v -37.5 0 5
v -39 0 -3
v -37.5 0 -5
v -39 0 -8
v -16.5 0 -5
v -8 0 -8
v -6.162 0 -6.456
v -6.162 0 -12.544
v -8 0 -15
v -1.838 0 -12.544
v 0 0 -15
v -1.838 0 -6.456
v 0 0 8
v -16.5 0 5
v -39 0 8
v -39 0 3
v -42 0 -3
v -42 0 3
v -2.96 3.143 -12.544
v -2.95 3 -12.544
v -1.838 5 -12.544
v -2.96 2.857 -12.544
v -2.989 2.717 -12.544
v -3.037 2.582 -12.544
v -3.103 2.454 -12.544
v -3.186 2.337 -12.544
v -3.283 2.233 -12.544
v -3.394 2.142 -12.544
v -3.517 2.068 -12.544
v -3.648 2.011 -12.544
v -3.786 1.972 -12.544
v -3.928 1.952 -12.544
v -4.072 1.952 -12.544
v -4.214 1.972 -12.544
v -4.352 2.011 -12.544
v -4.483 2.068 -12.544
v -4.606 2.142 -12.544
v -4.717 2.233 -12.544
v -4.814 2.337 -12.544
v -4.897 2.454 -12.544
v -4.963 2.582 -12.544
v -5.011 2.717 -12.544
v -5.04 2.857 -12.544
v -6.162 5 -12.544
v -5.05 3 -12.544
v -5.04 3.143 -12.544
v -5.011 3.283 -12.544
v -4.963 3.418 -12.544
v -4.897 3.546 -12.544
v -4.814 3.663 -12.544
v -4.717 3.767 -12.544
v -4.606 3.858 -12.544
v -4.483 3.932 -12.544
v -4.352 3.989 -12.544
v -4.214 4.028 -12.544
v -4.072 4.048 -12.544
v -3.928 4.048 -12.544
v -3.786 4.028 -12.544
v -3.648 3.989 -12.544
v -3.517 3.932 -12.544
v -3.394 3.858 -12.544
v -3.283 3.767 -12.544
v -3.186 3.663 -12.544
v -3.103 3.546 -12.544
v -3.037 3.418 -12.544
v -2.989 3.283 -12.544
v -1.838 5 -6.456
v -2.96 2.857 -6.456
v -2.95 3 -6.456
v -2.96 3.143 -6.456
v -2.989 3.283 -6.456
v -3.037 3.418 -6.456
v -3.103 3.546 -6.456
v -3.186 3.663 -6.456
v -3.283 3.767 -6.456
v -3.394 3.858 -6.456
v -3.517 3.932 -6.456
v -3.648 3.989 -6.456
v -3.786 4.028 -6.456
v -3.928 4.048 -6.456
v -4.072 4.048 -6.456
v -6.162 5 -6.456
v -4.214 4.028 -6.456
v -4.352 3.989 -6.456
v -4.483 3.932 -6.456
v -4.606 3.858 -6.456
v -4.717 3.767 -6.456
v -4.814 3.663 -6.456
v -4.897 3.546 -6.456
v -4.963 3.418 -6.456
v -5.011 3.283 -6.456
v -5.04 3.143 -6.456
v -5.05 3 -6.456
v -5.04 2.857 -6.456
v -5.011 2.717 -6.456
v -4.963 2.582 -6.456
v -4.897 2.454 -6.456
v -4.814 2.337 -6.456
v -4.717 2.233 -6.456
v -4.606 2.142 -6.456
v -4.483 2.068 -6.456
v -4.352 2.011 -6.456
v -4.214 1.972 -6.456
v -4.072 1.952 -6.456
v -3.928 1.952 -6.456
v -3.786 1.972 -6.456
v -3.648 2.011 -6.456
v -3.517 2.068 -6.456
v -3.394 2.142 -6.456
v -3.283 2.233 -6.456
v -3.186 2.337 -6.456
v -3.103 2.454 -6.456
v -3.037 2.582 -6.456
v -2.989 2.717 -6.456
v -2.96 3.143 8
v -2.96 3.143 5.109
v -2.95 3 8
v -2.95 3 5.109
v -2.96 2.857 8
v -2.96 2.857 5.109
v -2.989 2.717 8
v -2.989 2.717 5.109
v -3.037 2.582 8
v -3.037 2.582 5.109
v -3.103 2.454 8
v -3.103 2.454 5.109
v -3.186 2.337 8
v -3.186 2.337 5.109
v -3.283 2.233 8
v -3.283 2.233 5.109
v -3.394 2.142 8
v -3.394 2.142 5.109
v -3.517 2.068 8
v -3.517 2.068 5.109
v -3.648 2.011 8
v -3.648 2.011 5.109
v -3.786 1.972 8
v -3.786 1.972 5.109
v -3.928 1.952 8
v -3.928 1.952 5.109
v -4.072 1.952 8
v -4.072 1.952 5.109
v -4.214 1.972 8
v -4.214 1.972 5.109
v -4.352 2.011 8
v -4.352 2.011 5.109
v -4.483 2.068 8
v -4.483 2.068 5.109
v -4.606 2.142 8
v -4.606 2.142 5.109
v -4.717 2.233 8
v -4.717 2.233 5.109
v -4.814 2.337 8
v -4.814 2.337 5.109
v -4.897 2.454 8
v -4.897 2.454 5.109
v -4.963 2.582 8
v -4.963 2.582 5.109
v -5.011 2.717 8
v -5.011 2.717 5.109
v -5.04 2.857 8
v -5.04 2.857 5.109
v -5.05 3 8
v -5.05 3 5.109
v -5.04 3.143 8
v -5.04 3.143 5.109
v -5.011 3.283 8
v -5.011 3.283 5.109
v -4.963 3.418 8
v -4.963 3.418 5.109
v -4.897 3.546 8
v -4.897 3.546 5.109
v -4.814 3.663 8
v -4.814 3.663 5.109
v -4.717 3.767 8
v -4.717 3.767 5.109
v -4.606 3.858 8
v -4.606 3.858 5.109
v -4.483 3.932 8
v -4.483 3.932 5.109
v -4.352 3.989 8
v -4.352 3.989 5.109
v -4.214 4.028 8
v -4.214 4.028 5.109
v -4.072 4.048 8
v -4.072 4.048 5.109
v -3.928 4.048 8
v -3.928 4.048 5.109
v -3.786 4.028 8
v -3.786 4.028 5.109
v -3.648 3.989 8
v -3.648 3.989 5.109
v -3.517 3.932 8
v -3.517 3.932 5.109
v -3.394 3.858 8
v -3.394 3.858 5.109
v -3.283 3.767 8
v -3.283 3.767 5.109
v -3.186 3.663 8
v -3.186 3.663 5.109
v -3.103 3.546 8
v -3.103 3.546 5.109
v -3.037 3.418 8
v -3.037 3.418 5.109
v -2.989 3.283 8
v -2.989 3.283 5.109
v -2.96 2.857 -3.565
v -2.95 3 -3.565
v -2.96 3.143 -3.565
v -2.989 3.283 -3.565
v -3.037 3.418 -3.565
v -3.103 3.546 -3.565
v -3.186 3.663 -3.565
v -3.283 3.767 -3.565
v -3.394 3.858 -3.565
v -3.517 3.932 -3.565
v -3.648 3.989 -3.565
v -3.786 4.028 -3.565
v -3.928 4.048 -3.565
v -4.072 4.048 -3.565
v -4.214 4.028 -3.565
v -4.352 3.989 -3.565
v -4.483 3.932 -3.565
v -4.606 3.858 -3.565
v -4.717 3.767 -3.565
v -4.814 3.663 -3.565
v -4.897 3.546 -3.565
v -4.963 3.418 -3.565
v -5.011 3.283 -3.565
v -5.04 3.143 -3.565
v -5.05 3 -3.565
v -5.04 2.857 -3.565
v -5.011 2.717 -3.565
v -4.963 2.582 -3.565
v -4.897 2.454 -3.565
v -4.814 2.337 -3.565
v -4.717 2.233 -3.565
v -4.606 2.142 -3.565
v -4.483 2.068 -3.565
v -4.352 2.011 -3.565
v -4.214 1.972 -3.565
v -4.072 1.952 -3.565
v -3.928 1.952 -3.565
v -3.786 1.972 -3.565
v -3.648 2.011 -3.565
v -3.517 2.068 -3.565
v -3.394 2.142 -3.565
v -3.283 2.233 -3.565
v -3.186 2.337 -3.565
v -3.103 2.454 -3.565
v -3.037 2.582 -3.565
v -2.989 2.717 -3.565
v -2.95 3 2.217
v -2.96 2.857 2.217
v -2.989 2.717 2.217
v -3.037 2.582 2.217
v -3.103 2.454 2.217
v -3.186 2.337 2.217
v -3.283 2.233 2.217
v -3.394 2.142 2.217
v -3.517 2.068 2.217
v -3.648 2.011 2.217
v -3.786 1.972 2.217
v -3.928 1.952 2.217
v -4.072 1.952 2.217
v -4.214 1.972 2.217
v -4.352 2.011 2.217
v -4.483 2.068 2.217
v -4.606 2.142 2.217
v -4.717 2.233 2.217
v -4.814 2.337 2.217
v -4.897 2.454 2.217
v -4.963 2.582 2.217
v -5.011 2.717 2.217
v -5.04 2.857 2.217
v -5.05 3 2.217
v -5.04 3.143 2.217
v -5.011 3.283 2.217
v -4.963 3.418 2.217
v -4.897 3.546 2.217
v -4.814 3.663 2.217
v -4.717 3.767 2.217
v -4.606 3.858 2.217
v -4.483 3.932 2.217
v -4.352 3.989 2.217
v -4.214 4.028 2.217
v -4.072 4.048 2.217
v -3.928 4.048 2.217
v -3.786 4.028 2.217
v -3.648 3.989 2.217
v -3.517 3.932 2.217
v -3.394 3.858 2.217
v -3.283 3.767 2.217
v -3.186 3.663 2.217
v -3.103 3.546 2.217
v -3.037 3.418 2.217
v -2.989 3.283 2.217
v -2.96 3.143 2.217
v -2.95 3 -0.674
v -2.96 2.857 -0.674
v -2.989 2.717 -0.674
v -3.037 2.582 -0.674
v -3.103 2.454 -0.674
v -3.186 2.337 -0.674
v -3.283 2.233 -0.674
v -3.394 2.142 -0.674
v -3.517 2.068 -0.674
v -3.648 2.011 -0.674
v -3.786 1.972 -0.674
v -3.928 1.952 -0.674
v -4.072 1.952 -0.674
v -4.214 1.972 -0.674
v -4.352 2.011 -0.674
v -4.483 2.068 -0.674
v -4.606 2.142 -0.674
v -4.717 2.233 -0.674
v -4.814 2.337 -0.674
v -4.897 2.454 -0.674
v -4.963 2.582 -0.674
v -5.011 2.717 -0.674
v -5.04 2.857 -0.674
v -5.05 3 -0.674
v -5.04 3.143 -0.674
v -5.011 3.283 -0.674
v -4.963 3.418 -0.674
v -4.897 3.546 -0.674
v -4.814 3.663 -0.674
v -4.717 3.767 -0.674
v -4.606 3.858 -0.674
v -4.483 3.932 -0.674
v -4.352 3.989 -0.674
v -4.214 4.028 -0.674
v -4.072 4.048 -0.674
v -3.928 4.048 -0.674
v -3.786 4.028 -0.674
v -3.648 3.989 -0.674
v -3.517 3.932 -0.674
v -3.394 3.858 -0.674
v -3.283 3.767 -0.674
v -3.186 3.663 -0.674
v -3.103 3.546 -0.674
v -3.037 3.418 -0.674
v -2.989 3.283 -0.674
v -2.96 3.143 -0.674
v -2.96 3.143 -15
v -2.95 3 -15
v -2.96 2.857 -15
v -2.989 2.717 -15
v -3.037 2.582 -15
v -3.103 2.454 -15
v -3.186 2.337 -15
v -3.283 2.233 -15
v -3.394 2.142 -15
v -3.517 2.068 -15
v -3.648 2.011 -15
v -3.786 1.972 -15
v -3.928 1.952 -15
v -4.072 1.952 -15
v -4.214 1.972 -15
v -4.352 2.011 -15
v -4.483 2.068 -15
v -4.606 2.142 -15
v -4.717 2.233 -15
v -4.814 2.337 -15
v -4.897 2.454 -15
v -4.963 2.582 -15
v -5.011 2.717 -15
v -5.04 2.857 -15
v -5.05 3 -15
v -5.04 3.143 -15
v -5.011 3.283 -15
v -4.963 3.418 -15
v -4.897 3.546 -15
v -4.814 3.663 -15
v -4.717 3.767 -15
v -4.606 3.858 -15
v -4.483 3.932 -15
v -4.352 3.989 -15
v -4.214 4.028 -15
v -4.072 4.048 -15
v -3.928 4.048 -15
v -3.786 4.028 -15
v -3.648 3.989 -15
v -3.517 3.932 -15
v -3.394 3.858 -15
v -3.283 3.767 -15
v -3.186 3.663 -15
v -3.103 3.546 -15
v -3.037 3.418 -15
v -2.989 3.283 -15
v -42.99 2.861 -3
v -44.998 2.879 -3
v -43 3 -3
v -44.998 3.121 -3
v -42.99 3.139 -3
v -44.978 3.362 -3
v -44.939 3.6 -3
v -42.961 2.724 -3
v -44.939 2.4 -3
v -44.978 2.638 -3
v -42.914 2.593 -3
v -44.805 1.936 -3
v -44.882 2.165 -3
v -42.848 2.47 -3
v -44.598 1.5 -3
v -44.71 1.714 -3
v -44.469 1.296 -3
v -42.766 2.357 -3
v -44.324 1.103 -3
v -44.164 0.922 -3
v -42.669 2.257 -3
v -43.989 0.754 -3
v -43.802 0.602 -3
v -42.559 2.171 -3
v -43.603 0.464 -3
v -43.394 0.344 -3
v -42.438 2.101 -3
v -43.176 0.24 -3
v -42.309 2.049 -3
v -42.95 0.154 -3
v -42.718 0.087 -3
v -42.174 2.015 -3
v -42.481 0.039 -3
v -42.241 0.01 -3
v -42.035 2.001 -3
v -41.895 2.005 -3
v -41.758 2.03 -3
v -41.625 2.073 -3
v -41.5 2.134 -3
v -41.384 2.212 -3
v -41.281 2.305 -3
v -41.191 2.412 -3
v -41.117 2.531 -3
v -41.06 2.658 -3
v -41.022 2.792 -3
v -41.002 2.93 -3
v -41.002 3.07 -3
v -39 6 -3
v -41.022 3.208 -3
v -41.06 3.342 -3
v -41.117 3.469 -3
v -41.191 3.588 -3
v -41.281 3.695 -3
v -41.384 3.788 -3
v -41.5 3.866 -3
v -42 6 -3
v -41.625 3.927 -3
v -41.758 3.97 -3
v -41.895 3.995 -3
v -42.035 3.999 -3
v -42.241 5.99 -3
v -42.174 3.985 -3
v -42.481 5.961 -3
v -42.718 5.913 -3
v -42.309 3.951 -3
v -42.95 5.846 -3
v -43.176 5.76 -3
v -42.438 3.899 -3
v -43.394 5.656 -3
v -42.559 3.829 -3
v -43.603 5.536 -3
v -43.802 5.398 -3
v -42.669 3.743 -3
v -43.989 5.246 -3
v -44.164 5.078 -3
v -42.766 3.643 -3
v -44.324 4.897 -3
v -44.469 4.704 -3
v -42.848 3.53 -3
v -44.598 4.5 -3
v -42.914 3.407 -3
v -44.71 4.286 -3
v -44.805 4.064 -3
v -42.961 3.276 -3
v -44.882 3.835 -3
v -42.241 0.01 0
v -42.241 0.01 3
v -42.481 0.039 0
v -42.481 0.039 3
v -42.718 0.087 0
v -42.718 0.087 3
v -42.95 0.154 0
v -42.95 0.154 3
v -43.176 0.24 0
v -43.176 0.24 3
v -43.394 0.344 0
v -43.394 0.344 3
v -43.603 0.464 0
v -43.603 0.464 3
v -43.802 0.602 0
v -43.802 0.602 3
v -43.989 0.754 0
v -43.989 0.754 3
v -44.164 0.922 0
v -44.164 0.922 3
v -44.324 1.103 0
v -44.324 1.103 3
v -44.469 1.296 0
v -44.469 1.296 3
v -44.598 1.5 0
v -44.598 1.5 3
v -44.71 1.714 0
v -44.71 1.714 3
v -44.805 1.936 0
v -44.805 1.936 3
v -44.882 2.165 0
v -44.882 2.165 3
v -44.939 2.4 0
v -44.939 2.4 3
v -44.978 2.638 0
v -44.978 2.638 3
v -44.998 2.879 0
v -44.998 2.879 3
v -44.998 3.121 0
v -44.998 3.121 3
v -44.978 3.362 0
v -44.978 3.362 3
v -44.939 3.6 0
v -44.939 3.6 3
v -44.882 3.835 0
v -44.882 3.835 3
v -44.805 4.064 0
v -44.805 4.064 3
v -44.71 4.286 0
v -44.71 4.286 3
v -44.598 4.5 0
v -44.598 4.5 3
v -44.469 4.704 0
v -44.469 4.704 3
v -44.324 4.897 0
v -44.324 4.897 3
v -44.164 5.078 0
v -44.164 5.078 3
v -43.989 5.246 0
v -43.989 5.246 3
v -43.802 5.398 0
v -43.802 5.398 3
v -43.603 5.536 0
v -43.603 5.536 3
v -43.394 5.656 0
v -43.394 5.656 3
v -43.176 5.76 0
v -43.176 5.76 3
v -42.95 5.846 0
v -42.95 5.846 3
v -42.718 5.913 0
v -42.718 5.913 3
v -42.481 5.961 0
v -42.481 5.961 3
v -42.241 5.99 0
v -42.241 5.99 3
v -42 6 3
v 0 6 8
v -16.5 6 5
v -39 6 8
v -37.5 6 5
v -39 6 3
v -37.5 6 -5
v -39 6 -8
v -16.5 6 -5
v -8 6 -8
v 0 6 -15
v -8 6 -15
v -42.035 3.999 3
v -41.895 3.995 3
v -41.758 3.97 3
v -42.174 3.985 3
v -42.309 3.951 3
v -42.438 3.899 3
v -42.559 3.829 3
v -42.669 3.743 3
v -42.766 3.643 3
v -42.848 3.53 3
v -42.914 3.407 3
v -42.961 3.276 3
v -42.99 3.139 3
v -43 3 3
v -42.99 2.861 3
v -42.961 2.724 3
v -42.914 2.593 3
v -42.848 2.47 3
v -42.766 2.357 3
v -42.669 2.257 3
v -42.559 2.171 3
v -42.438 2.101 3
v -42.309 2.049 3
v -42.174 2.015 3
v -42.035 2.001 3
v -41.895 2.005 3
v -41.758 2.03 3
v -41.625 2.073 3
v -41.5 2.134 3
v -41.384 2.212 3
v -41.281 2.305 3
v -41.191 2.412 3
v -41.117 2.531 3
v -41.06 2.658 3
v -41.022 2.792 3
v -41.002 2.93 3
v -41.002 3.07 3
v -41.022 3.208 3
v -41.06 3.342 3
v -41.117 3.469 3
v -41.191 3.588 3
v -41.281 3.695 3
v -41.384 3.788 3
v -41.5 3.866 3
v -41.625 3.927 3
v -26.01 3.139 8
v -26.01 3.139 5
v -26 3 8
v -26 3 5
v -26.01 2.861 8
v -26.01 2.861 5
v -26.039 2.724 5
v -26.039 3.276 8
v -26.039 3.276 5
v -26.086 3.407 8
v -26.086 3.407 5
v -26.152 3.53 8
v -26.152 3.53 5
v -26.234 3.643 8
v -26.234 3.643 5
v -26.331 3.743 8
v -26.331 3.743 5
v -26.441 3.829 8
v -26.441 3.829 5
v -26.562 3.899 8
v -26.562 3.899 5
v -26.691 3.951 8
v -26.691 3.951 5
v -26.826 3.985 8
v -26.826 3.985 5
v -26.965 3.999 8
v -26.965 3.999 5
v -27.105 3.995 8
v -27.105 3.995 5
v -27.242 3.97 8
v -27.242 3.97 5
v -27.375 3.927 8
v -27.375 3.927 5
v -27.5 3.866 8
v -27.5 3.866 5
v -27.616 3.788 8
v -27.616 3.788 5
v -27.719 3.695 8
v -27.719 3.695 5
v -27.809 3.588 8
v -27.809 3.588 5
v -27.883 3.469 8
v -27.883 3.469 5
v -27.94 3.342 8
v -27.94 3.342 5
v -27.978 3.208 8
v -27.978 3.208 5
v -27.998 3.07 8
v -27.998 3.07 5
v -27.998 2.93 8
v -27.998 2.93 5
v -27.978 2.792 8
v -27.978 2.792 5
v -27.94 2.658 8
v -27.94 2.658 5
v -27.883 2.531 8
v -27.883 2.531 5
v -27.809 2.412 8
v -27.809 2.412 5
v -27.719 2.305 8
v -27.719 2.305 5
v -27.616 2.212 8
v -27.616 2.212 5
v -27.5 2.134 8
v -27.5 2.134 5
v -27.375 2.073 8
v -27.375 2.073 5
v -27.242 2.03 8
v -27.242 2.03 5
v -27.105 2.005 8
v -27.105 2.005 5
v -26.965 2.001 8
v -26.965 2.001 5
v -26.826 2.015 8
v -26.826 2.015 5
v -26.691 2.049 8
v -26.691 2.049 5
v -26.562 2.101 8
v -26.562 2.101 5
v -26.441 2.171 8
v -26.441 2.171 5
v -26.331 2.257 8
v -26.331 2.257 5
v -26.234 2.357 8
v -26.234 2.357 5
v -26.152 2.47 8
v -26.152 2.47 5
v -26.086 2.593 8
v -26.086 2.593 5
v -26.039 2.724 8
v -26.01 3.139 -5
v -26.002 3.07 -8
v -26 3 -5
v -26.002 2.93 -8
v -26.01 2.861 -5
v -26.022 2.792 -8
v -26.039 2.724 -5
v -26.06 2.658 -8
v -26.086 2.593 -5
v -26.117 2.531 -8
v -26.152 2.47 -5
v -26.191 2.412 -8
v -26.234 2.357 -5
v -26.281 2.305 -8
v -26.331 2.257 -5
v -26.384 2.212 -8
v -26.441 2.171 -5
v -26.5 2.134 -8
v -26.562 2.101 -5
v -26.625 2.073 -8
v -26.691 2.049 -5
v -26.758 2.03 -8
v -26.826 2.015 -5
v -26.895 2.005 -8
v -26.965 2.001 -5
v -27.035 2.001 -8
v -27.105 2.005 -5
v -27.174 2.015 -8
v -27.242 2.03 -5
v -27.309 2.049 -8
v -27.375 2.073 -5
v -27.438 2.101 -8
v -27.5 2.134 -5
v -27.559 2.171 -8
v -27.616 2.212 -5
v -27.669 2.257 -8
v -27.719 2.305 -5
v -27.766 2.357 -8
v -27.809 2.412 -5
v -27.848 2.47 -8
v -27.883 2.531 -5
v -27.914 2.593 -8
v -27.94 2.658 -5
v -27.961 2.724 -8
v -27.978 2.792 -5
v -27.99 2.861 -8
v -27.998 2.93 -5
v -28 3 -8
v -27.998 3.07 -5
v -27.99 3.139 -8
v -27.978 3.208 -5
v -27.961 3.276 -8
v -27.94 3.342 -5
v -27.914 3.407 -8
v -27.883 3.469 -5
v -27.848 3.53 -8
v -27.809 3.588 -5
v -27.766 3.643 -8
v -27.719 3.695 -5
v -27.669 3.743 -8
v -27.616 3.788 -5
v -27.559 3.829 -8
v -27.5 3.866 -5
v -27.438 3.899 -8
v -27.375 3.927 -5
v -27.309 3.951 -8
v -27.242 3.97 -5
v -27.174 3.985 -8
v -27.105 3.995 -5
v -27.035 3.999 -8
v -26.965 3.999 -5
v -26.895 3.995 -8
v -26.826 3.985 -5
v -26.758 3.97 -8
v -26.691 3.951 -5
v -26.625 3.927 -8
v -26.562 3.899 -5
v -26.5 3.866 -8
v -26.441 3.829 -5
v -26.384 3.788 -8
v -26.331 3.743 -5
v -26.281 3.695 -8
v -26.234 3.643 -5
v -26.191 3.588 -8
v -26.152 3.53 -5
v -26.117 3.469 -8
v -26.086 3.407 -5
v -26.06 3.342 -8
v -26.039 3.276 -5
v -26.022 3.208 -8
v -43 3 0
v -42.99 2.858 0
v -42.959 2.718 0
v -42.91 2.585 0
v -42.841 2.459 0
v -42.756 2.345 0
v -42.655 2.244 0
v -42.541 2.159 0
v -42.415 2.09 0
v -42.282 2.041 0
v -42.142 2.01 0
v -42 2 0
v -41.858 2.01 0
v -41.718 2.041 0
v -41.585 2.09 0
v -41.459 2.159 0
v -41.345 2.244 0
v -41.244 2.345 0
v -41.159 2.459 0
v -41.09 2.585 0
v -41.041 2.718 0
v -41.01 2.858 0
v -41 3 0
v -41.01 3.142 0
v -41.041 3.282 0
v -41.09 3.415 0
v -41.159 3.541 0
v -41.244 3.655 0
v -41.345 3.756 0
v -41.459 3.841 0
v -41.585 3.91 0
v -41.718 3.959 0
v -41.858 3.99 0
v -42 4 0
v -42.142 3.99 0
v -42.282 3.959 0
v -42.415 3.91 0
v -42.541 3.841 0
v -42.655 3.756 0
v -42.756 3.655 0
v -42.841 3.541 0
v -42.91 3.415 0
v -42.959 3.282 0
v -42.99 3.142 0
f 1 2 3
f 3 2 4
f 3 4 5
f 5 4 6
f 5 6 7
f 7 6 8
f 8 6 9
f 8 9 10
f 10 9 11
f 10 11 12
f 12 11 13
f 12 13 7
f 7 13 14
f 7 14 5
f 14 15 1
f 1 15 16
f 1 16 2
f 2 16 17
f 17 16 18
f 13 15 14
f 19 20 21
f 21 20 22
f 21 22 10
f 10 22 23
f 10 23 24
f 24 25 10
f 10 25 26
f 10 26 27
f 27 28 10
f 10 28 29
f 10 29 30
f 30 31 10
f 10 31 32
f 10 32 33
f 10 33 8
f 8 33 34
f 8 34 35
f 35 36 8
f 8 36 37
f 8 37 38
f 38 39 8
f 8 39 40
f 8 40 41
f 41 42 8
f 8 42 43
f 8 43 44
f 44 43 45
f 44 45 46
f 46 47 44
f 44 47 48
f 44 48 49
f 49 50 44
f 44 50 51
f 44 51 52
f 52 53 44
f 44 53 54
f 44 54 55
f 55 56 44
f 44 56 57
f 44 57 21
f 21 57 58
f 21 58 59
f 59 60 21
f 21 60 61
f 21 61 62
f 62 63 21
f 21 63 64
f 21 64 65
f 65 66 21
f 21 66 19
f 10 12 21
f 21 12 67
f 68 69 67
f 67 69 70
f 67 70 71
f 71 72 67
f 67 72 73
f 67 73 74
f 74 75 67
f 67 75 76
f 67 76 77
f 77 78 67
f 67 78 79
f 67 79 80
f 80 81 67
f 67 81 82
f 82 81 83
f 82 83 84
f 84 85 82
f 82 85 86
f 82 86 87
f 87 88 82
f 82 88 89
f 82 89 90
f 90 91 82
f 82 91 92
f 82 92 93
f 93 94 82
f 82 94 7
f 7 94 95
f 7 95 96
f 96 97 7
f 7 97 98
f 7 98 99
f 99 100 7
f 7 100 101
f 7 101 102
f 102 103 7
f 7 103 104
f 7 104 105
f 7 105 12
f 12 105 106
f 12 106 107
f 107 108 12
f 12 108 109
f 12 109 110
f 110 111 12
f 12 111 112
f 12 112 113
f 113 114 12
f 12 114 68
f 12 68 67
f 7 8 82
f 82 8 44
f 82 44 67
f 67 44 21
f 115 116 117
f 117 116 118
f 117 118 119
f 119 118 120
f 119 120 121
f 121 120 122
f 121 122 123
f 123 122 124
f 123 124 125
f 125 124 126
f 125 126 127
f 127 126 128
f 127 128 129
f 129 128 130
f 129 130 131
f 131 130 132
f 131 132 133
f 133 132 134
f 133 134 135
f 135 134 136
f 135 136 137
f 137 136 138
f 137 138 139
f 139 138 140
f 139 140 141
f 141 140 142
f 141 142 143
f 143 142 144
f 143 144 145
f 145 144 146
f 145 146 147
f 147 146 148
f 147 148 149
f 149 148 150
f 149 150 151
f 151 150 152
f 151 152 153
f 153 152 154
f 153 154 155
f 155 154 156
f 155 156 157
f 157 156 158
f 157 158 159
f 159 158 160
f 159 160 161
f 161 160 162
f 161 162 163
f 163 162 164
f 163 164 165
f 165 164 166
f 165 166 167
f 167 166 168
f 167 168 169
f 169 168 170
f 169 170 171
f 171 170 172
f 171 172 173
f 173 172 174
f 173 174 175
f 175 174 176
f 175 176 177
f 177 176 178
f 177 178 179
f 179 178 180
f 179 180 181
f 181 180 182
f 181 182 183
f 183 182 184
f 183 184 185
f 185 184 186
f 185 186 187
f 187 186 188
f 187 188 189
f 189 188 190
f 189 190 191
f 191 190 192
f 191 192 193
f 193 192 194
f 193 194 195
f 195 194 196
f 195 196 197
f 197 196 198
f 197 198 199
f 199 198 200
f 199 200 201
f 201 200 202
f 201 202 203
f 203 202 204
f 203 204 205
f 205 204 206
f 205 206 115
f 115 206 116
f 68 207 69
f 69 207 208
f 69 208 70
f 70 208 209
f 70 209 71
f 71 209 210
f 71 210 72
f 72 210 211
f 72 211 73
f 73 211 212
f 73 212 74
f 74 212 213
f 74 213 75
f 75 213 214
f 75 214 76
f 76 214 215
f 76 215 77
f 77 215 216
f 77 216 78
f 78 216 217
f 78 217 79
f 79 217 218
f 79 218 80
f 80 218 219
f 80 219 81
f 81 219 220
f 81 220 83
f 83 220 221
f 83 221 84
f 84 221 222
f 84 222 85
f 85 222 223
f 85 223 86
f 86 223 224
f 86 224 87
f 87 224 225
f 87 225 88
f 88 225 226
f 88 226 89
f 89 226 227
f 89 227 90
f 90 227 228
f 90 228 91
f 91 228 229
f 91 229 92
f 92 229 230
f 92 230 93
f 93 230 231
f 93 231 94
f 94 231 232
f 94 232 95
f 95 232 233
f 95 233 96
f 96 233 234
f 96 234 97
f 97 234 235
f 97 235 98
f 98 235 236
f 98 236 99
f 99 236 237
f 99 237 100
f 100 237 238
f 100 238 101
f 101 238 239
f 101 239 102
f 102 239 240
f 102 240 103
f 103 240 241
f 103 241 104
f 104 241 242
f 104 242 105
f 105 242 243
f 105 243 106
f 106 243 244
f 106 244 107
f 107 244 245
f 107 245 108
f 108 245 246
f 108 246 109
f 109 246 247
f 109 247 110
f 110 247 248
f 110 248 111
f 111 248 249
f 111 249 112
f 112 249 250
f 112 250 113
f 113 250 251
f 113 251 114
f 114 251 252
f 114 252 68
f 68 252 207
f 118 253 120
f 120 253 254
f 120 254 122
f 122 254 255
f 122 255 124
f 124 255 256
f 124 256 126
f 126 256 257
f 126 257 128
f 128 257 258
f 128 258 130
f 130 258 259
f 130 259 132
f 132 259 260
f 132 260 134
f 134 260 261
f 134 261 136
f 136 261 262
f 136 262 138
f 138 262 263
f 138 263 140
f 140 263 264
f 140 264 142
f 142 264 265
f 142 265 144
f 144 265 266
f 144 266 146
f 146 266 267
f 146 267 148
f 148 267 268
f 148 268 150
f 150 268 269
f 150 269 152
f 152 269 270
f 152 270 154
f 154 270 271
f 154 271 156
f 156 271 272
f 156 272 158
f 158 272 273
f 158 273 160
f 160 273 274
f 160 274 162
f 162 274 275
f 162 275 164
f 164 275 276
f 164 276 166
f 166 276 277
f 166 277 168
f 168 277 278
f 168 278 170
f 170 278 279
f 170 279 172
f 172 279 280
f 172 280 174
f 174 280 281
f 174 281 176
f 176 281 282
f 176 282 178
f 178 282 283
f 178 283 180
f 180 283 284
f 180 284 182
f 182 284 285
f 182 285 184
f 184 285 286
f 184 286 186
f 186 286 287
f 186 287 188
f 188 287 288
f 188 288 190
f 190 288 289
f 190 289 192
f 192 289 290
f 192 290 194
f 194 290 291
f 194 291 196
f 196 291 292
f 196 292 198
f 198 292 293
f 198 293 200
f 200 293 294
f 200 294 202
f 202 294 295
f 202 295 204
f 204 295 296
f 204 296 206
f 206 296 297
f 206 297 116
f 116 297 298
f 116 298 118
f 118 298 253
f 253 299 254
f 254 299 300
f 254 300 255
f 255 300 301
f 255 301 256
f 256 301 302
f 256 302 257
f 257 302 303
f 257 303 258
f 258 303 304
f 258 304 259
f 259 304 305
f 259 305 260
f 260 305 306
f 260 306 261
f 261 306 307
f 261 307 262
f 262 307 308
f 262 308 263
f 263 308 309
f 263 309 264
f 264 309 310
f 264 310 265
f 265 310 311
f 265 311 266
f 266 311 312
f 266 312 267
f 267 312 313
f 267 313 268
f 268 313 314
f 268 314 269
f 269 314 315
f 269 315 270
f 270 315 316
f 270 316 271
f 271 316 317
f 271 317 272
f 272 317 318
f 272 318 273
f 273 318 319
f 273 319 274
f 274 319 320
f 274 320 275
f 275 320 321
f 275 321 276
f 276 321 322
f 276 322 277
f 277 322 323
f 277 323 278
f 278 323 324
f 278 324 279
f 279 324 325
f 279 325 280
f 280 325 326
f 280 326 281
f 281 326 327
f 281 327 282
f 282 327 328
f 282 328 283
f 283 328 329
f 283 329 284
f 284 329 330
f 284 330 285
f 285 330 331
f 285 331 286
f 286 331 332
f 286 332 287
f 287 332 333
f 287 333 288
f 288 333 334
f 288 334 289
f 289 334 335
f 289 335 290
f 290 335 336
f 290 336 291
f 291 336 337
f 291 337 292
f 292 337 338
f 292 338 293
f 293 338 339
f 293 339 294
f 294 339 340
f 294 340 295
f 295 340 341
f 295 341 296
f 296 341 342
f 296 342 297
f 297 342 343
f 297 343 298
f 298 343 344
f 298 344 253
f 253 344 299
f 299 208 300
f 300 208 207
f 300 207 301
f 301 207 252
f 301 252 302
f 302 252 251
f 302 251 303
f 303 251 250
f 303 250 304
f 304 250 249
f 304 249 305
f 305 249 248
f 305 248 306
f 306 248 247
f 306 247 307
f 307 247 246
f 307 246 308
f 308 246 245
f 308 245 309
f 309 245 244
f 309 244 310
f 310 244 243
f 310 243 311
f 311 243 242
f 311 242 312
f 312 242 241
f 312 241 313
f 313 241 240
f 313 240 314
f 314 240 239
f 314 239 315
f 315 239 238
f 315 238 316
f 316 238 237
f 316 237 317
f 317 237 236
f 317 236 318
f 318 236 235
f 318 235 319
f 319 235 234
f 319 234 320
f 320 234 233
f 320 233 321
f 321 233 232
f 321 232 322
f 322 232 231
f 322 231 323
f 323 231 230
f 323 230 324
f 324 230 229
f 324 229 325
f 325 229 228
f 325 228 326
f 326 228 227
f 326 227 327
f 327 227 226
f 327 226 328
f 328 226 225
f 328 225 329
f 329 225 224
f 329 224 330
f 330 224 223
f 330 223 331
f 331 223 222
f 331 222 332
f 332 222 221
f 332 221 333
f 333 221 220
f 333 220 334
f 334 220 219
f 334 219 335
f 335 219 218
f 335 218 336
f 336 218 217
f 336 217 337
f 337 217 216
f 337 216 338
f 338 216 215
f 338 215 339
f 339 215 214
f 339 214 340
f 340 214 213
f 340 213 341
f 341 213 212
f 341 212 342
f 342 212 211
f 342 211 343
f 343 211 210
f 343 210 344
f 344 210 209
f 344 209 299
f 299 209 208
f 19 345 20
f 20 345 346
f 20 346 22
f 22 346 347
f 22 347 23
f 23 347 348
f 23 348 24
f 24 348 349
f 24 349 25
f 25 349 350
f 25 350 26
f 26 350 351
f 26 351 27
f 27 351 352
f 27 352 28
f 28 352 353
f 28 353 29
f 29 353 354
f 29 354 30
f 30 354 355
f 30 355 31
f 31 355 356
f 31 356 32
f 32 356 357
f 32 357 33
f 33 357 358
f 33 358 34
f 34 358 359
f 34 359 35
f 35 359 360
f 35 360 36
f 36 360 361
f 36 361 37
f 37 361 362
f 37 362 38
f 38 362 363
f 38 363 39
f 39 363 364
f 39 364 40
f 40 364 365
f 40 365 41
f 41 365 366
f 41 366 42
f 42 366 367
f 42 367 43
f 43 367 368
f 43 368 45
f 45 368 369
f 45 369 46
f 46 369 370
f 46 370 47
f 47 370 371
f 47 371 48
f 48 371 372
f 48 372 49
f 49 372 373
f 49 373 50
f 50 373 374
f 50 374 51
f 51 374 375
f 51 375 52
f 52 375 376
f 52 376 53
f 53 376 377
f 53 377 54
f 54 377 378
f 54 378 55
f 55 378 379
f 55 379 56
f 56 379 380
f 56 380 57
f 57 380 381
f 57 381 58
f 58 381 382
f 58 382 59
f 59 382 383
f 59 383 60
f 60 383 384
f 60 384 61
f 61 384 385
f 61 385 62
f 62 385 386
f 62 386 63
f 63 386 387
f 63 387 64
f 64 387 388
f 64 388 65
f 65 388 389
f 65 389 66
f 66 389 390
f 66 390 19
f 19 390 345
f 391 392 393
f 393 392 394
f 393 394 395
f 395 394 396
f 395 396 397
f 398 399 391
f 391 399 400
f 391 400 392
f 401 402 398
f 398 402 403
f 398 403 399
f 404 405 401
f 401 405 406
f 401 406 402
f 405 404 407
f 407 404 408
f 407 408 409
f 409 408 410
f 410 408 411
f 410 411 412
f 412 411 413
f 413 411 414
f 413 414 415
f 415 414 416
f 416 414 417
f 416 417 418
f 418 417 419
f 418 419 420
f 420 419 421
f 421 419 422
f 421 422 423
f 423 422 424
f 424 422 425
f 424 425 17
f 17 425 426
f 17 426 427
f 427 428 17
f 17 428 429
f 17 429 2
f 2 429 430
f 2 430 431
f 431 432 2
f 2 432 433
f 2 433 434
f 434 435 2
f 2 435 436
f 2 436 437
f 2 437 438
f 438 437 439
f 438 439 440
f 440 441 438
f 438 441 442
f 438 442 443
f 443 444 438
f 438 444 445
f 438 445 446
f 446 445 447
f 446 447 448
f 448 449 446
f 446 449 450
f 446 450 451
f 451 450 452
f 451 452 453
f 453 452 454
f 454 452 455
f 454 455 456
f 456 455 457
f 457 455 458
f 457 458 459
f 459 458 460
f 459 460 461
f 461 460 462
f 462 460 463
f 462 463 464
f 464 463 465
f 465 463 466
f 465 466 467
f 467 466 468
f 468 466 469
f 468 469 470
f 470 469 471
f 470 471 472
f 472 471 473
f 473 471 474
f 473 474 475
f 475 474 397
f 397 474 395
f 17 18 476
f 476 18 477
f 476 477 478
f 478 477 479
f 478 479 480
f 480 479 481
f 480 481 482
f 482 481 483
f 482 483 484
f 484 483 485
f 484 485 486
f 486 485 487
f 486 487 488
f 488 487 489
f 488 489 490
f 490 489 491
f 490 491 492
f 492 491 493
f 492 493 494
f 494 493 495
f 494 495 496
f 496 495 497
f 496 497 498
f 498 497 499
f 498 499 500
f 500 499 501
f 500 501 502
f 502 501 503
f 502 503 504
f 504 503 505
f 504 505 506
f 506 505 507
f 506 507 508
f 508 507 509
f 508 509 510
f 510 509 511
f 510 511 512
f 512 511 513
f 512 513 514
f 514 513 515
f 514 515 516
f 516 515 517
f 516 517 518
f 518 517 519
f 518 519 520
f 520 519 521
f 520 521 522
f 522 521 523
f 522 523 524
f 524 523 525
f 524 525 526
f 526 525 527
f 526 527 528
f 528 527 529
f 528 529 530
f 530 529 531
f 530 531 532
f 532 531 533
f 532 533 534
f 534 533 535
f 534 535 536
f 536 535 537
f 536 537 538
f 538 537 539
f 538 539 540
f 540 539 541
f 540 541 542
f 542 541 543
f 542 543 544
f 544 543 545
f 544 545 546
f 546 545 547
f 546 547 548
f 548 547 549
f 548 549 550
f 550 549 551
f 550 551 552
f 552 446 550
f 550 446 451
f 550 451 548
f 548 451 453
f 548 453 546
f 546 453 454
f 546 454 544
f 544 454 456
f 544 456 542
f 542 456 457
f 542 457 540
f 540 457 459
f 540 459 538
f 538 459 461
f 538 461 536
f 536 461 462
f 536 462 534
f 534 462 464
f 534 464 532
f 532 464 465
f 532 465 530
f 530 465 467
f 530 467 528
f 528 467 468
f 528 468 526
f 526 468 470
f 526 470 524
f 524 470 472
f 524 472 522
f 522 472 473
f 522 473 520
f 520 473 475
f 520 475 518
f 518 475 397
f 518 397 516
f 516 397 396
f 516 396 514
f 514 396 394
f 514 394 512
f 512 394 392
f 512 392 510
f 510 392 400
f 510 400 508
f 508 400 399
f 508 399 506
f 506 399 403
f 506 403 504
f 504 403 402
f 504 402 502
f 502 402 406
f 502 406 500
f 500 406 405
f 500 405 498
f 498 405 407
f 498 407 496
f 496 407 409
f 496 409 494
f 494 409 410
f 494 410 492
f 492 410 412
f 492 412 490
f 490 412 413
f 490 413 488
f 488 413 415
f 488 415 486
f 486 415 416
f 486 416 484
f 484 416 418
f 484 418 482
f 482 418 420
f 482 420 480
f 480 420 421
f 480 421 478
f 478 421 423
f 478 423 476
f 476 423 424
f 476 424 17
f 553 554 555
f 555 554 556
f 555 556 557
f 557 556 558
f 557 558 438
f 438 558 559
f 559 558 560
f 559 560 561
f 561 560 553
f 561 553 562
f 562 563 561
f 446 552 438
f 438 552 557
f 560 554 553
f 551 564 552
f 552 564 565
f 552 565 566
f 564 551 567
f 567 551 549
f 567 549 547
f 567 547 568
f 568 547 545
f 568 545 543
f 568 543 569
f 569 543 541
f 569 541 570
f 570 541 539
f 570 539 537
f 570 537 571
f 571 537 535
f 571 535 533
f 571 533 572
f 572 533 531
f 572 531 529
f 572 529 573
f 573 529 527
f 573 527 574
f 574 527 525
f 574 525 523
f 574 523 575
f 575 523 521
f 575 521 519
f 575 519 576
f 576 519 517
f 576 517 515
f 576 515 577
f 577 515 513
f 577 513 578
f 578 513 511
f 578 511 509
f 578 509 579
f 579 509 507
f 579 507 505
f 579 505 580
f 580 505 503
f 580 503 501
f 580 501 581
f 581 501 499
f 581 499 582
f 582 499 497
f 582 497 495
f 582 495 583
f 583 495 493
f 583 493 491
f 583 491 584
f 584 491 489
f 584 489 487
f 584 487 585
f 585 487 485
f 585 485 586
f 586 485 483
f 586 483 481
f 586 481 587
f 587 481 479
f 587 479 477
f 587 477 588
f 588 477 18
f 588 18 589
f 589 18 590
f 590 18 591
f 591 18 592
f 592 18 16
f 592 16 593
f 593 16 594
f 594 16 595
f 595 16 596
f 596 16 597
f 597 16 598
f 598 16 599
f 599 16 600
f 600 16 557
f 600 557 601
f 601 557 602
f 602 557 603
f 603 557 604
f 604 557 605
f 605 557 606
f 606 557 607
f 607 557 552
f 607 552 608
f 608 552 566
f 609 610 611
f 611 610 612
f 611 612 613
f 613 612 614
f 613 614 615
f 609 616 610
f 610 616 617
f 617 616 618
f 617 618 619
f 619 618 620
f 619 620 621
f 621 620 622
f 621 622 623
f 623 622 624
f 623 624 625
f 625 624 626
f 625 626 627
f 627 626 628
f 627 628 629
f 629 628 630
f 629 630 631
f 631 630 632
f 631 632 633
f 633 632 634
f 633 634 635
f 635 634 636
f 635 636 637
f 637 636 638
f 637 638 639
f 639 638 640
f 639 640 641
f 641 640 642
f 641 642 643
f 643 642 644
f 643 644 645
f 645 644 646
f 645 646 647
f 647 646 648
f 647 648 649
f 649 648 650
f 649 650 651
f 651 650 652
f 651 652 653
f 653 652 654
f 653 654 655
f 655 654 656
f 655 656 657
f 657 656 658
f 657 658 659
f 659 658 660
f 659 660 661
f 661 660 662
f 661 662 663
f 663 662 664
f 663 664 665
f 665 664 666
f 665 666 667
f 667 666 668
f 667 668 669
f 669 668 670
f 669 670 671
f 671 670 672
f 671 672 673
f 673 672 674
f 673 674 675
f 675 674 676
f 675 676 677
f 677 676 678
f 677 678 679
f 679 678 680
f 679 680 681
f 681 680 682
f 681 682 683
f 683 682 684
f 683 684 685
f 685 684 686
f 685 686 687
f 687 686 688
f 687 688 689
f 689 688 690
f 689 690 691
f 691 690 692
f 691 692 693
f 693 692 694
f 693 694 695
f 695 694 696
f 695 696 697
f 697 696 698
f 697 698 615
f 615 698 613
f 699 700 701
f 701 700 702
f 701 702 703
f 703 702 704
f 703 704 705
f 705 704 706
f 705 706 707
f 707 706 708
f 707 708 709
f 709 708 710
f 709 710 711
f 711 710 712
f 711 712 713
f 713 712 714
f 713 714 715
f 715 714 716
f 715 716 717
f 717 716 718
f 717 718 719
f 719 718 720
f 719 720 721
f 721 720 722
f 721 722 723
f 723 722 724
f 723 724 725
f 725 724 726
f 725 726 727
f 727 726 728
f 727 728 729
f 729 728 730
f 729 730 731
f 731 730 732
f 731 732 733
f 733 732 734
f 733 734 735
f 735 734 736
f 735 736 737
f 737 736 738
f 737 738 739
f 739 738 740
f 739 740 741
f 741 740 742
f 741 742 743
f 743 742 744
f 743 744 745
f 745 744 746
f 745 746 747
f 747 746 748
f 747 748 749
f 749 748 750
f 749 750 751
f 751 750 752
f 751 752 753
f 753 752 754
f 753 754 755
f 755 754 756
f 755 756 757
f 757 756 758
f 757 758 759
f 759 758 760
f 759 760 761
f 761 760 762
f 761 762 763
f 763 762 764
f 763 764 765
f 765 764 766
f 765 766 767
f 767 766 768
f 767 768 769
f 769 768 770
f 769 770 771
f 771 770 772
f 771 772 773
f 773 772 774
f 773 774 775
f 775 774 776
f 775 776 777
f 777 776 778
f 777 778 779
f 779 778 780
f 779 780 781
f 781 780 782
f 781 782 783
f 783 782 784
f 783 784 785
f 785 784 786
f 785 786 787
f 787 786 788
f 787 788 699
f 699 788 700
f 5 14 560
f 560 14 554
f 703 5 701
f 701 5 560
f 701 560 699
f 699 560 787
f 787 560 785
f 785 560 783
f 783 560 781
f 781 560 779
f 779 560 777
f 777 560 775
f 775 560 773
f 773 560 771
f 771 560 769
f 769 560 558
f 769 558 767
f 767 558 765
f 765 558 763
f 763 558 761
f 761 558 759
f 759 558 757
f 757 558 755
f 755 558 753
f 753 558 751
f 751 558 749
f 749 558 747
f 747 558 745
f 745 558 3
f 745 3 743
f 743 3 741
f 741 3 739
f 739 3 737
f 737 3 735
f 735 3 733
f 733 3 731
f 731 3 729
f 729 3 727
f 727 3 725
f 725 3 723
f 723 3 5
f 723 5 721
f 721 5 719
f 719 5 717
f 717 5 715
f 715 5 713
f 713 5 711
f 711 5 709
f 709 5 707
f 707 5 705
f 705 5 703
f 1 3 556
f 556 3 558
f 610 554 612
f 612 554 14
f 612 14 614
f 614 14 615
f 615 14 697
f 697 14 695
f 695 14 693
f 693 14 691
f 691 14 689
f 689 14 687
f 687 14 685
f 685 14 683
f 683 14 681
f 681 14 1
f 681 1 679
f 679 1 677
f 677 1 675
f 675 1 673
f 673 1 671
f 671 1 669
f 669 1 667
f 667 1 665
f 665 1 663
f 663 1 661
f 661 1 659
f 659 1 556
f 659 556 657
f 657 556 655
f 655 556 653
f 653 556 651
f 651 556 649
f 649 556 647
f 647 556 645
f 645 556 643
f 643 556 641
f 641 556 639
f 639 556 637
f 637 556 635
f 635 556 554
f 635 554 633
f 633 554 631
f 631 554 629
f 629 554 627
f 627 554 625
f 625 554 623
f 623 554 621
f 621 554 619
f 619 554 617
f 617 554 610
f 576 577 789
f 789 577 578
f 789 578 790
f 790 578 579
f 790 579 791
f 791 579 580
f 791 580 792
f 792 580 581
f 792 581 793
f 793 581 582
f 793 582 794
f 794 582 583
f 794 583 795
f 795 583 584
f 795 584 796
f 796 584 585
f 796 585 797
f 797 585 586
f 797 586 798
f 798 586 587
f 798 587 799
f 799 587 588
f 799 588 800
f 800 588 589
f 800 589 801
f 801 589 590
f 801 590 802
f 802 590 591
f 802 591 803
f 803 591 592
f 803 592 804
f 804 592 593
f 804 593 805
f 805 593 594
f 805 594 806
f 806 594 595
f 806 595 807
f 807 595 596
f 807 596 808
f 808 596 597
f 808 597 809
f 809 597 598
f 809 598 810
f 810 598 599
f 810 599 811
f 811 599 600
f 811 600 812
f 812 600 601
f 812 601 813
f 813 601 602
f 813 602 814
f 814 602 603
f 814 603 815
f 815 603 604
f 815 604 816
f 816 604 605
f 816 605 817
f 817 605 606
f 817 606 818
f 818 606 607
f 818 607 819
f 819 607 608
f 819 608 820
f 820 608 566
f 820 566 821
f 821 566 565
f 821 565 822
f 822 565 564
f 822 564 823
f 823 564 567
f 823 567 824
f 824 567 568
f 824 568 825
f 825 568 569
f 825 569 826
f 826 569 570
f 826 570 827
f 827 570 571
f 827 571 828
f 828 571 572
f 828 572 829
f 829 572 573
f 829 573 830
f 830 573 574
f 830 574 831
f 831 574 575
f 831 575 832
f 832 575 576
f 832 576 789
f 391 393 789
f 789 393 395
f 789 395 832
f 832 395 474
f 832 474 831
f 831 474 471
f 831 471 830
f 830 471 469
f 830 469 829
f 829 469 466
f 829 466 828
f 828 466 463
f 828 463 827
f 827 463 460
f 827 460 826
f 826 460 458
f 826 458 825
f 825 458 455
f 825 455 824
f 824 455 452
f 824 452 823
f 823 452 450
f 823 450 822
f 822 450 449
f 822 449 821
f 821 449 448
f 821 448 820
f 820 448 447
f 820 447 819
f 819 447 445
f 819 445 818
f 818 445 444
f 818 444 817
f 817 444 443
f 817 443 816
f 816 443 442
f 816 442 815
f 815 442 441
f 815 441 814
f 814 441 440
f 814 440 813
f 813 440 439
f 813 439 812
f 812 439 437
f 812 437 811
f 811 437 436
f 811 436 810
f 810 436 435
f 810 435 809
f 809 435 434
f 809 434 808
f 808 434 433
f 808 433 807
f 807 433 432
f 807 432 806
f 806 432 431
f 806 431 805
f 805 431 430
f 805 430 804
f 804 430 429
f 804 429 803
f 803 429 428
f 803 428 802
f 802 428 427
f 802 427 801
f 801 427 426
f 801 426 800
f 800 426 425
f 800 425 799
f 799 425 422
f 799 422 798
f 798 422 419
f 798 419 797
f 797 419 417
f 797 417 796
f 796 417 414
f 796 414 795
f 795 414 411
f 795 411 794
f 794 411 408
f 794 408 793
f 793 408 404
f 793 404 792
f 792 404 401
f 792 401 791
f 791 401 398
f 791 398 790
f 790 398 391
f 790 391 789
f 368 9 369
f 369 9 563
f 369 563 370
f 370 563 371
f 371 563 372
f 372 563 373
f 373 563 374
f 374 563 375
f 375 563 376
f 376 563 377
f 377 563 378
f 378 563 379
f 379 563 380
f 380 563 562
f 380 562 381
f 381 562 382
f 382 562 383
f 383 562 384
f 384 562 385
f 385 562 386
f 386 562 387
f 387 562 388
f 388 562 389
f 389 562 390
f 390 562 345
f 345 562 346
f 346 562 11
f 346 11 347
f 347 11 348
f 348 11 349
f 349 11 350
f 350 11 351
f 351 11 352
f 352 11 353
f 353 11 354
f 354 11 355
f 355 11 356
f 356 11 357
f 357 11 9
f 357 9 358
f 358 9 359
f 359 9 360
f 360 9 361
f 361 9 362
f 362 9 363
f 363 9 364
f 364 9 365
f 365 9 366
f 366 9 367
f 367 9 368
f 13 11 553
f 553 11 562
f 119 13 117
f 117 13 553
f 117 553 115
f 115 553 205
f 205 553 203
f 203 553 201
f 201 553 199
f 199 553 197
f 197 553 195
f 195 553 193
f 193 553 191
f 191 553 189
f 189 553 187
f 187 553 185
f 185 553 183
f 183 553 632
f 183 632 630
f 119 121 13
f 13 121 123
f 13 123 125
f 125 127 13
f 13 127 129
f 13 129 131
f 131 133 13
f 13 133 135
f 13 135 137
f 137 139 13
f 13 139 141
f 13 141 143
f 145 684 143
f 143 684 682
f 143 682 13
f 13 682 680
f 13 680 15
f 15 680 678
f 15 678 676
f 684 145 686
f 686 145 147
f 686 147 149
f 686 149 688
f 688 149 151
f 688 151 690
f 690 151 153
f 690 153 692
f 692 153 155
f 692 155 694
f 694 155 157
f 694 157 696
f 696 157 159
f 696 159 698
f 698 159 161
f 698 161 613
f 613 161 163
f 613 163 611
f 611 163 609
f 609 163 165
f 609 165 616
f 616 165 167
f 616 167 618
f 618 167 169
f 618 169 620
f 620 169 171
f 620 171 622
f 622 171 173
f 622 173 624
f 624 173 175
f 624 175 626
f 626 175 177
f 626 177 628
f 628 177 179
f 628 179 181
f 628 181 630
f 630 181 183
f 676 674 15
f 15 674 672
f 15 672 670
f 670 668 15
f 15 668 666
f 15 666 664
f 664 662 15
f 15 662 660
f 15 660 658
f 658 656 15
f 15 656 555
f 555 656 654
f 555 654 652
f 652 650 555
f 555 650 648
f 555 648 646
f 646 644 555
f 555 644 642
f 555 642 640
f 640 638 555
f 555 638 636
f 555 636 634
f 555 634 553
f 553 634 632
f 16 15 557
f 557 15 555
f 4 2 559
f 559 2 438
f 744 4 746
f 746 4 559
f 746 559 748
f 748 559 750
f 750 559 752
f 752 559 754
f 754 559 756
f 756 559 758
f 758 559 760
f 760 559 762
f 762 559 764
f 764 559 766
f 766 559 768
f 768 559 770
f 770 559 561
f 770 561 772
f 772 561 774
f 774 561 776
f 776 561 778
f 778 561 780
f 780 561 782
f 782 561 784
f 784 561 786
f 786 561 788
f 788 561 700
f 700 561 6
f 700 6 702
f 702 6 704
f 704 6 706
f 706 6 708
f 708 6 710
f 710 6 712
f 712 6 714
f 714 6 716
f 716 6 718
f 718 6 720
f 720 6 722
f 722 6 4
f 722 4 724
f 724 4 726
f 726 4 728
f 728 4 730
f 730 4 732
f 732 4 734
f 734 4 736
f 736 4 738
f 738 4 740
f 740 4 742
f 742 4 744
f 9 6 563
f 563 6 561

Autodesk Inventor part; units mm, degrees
ref_plane "YZ Plane" through (0, 0, 0) normal (1, 0, 0) x (0, 1, 0)
ref_plane "XZ Plane" through (0, 0, 0) normal (0, 1, 0) x (-1, 0, 0)
sketch "Sketch1" plane through (0, 0, 0) normal (0, 1, 0) x (-1, 0, 0)
  line L0 (0, 0) -> (18.1846, 0) construction
  line L1 (0, 0) -> (0, 15)
  line L2 (0, 15) -> (8, 15)
  line L3 (8, 15) -> (8, 8)
  line L4 (8, 8) -> (39, 8)
  line L5 (39, 8) -> (39, 3)
  line L6 (39, 3) -> (45, 3)
  line L7 (45, 3) -> (45, 0)
  line L8 (0, 0) -> (0, -15)
  line L9 (0, -15) -> (8, -15)
  line L10 (8, -15) -> (8, -8)
  line L11 (8, -8) -> (39, -8)
  line L12 (39, -8) -> (39, -3)
  line L13 (39, -3) -> (45, -3)
  line L14 (45, -3) -> (45, 0)
  point P0 (45, 1.5)
  dimension "d0" = 6
  dimension "d1" = 45
  dimension "d2" = 8
  dimension "d3" = 8
  dimension "d4" = 15
  dimension "d5" = 3
extrude "Extrusion1" add sketch "Sketch1" along normal blind 6
sketch "Sketch2" plane through (-39, 0, -3) normal (0, 0, -1) x (-1, 0, 0)
  line L0 (0, 0) -> (6, 0) projected
  line L1 (6, 0) -> (6, 6) projected
  line L2 (0, 6) -> (6, 6) projected
  line L3 (0, 0) -> (0, 6) projected
  circle A0 centre (3, 3) radius 1
  point P0 (-39, 0)
  point P1 (6, 3)
  dimension "d8" = 3
  dimension "d9" = 2
extrude "Extrusion2" cut sketch "Sketch2" against normal blind 6 contours A0
sketch "Sketch3" plane through (0, 6, 0) normal (0, 1, 0) x (1, 0, 0)
  line L0 (-8, 15) -> (-8, 8) projected
  line L1 (-8, 8) -> (-39, 8) projected
  line L2 (-39, 8) -> (-39, 3) projected
  line L3 (-39, 3) -> (-45, 3) projected
  line L4 (-45, 3) -> (-45, -3) projected
  line L5 (-45, -3) -> (-39, -3) projected
  line L6 (-39, -3) -> (-39, -8) projected
  line L7 (-39, -8) -> (-8, -8) projected
  line L8 (-8, -8) -> (-8, -15) projected
  line L9 (-8, -15) -> (0, -15) projected
  line L10 (0, -15) -> (0, 15) projected
  line L11 (0, 15) -> (-8, 15) projected
  line L12 (-45, 3) -> (-45, -3) construction
  line L13 (-45, 0) -> (0, 0) construction
  line L14 (-16.5, -5) -> (-37.5, -5)
  line L15 (-37.5, -5) -> (-37.5, 5)
  line L16 (-37.5, 5) -> (-16.5, 5)
  line L17 (-16.5, 5) -> (-16.5, -5)
  point P0 (-42, -3)
  point P1 (-27, -5)
  dimension "d12" = 10
  dimension "d13" = 21
  dimension "d14" = 15
extrude "Extrusion3" cut sketch "Sketch3" against normal through all contours L14 L15 L16 L17
sketch "Sketch4" plane through (-8, 0, -8) normal (0, 0, -1) x (-1, 0, 0)
  line L0 (29.5, 0) -> (8.5, 0) projected
  line L1 (29.5, 6) -> (29.5, 0) projected
  line L2 (8.5, 6) -> (29.5, 6) projected
  line L3 (8.5, 6) -> (8.5, 0) projected
  circle A0 centre (19, 3) radius 1
  point P0 (-8, 0)
  point P1 (10.5, 6)
  point P2 (29.5, 3)
  point P3 (19, 6)
  dimension "d17" = 2
extrude "Extrusion4" cut sketch "Sketch4" against normal through all contours A0
fillet "Fillet1" radius 3 2 edges at (-45, 6, 0) (-45, 0, 0)
sketch "Náčrt5" plane through (0, 0, -15) normal (0, 0, -1) x (-1, 0, 0)
  line L0 (0, 0) -> (8, 0) projected
  line L1 (8, 0) -> (8, 6) projected
  line L2 (0, 6) -> (8, 6) projected
  line L3 (0, 0) -> (0, 6) projected
  circle A0 centre (4, 3) radius 1.05
  point P0 (0, 0)
  point P1 (8, 3)
  point P2 (4, 6)
  dimension "d21" = 2.1
extrude "Vysunutí5" cut sketch "Náčrt5" against normal through all contours A0
ref_plane "Pracovní rovina1" through (0, 0, 0) normal (0, 0, -1) x (-1, 0, 0)
sketch "Sketch9" plane through (0, 0, 0) normal (0, -1, 0) x (1, 0, 0)
  line L0 (-42, -3) -> (-42, 3) projected
  line L1 (-39, -3) -> (-42, -3) projected
  line L2 (-39, -8) -> (-39, -3) projected
  line L3 (-8, -8) -> (-39, -8) projected
  line L4 (-8, -15) -> (-8, -8) projected
  line L5 (0, -15) -> (-8, -15) projected
  line L6 (0, 15) -> (0, -15) projected
  line L7 (-8, 15) -> (0, 15) projected
  line L8 (-8, 8) -> (-8, 15) projected
  line L9 (-39, 8) -> (-8, 8) projected
  line L10 (-39, 3) -> (-39, 8) projected
  line L11 (-42, 3) -> (-39, 3) projected
  line L12 (-16.5, -5) -> (-37.5, -5) projected
  line L13 (-37.5, -5) -> (-37.5, 5) projected
  line L14 (-37.5, 5) -> (-16.5, 5) projected
  line L15 (-16.5, 5) -> (-16.5, -5) projected
  line L16 (-2.95, -15) -> (-5.05, -15) projected
  line L17 (-1.8376, -6.4564) -> (-6.1624, -6.4564)
  line L18 (-6.1624, -6.4564) -> (-6.1624, -12.5436)
  line L19 (-6.1624, -12.5436) -> (-1.8376, -12.5436)
  line L20 (-1.8376, -12.5436) -> (-1.8376, -6.4564)
  line L21 (0, -15) -> (-8, -15) construction
  line L22 (-4, -15) -> (-4, 15) construction
  line L23 (-8, 15) -> (0, 15) construction
  point P0 (0, 0)
  point P1 (0, 0)
  point P2 (-1.8376, -9.5)
  dimension "d29" = 9.5
extrude "Extrusion7" cut sketch "Sketch9" against normal blind 5 contours L20 L19 L18 L17
sketch "Sketch10" plane through (0, 0, 0) normal (0, -1, 0) x (1, 0, 0)
  line L0 (-1.8376, -12.5436) -> (-6.1624, -12.5436) projected
  line L1 (-6.1624, -12.5436) -> (-6.1624, -6.4564) projected
  line L2 (-6.1624, -6.4564) -> (-1.8376, -6.4564) projected
  line L3 (-1.8376, -6.4564) -> (-1.8376, -12.5436) projected
  line L4 (-42, -3) -> (-42, 3) projected
  line L5 (-39, -3) -> (-42, -3) projected
  line L6 (-39, -8) -> (-39, -3) projected
  line L7 (-8, -8) -> (-39, -8) projected
  line L8 (-8, -15) -> (-8, -8) projected
  line L9 (0, -15) -> (-8, -15) projected
  line L10 (0, 15) -> (0, -15) projected
  line L11 (-8, 15) -> (0, 15) projected
  line L12 (-8, 8) -> (-8, 15) projected
  line L13 (-39, 8) -> (-8, 8) projected
  line L14 (-39, 3) -> (-39, 8) projected
  line L15 (-42, 3) -> (-39, 3) projected
  line L16 (-37.5, -5) -> (-37.5, 5) projected
  line L17 (-37.5, 5) -> (-16.5, 5) projected
  line L18 (-16.5, 5) -> (-16.5, -5) projected
  line L19 (-16.5, -5) -> (-37.5, -5) projected
  line L20 (-8, 8) -> (-8, 15) projected
  line L21 (-8, 8) -> (0, 8)
  point P0 (0, 0)
extrude "Extrusion8" cut sketch "Sketch10" against normal through all contours L12 L11 L10 L21
properties part number "drzak_pritlacneho_kolecka"
